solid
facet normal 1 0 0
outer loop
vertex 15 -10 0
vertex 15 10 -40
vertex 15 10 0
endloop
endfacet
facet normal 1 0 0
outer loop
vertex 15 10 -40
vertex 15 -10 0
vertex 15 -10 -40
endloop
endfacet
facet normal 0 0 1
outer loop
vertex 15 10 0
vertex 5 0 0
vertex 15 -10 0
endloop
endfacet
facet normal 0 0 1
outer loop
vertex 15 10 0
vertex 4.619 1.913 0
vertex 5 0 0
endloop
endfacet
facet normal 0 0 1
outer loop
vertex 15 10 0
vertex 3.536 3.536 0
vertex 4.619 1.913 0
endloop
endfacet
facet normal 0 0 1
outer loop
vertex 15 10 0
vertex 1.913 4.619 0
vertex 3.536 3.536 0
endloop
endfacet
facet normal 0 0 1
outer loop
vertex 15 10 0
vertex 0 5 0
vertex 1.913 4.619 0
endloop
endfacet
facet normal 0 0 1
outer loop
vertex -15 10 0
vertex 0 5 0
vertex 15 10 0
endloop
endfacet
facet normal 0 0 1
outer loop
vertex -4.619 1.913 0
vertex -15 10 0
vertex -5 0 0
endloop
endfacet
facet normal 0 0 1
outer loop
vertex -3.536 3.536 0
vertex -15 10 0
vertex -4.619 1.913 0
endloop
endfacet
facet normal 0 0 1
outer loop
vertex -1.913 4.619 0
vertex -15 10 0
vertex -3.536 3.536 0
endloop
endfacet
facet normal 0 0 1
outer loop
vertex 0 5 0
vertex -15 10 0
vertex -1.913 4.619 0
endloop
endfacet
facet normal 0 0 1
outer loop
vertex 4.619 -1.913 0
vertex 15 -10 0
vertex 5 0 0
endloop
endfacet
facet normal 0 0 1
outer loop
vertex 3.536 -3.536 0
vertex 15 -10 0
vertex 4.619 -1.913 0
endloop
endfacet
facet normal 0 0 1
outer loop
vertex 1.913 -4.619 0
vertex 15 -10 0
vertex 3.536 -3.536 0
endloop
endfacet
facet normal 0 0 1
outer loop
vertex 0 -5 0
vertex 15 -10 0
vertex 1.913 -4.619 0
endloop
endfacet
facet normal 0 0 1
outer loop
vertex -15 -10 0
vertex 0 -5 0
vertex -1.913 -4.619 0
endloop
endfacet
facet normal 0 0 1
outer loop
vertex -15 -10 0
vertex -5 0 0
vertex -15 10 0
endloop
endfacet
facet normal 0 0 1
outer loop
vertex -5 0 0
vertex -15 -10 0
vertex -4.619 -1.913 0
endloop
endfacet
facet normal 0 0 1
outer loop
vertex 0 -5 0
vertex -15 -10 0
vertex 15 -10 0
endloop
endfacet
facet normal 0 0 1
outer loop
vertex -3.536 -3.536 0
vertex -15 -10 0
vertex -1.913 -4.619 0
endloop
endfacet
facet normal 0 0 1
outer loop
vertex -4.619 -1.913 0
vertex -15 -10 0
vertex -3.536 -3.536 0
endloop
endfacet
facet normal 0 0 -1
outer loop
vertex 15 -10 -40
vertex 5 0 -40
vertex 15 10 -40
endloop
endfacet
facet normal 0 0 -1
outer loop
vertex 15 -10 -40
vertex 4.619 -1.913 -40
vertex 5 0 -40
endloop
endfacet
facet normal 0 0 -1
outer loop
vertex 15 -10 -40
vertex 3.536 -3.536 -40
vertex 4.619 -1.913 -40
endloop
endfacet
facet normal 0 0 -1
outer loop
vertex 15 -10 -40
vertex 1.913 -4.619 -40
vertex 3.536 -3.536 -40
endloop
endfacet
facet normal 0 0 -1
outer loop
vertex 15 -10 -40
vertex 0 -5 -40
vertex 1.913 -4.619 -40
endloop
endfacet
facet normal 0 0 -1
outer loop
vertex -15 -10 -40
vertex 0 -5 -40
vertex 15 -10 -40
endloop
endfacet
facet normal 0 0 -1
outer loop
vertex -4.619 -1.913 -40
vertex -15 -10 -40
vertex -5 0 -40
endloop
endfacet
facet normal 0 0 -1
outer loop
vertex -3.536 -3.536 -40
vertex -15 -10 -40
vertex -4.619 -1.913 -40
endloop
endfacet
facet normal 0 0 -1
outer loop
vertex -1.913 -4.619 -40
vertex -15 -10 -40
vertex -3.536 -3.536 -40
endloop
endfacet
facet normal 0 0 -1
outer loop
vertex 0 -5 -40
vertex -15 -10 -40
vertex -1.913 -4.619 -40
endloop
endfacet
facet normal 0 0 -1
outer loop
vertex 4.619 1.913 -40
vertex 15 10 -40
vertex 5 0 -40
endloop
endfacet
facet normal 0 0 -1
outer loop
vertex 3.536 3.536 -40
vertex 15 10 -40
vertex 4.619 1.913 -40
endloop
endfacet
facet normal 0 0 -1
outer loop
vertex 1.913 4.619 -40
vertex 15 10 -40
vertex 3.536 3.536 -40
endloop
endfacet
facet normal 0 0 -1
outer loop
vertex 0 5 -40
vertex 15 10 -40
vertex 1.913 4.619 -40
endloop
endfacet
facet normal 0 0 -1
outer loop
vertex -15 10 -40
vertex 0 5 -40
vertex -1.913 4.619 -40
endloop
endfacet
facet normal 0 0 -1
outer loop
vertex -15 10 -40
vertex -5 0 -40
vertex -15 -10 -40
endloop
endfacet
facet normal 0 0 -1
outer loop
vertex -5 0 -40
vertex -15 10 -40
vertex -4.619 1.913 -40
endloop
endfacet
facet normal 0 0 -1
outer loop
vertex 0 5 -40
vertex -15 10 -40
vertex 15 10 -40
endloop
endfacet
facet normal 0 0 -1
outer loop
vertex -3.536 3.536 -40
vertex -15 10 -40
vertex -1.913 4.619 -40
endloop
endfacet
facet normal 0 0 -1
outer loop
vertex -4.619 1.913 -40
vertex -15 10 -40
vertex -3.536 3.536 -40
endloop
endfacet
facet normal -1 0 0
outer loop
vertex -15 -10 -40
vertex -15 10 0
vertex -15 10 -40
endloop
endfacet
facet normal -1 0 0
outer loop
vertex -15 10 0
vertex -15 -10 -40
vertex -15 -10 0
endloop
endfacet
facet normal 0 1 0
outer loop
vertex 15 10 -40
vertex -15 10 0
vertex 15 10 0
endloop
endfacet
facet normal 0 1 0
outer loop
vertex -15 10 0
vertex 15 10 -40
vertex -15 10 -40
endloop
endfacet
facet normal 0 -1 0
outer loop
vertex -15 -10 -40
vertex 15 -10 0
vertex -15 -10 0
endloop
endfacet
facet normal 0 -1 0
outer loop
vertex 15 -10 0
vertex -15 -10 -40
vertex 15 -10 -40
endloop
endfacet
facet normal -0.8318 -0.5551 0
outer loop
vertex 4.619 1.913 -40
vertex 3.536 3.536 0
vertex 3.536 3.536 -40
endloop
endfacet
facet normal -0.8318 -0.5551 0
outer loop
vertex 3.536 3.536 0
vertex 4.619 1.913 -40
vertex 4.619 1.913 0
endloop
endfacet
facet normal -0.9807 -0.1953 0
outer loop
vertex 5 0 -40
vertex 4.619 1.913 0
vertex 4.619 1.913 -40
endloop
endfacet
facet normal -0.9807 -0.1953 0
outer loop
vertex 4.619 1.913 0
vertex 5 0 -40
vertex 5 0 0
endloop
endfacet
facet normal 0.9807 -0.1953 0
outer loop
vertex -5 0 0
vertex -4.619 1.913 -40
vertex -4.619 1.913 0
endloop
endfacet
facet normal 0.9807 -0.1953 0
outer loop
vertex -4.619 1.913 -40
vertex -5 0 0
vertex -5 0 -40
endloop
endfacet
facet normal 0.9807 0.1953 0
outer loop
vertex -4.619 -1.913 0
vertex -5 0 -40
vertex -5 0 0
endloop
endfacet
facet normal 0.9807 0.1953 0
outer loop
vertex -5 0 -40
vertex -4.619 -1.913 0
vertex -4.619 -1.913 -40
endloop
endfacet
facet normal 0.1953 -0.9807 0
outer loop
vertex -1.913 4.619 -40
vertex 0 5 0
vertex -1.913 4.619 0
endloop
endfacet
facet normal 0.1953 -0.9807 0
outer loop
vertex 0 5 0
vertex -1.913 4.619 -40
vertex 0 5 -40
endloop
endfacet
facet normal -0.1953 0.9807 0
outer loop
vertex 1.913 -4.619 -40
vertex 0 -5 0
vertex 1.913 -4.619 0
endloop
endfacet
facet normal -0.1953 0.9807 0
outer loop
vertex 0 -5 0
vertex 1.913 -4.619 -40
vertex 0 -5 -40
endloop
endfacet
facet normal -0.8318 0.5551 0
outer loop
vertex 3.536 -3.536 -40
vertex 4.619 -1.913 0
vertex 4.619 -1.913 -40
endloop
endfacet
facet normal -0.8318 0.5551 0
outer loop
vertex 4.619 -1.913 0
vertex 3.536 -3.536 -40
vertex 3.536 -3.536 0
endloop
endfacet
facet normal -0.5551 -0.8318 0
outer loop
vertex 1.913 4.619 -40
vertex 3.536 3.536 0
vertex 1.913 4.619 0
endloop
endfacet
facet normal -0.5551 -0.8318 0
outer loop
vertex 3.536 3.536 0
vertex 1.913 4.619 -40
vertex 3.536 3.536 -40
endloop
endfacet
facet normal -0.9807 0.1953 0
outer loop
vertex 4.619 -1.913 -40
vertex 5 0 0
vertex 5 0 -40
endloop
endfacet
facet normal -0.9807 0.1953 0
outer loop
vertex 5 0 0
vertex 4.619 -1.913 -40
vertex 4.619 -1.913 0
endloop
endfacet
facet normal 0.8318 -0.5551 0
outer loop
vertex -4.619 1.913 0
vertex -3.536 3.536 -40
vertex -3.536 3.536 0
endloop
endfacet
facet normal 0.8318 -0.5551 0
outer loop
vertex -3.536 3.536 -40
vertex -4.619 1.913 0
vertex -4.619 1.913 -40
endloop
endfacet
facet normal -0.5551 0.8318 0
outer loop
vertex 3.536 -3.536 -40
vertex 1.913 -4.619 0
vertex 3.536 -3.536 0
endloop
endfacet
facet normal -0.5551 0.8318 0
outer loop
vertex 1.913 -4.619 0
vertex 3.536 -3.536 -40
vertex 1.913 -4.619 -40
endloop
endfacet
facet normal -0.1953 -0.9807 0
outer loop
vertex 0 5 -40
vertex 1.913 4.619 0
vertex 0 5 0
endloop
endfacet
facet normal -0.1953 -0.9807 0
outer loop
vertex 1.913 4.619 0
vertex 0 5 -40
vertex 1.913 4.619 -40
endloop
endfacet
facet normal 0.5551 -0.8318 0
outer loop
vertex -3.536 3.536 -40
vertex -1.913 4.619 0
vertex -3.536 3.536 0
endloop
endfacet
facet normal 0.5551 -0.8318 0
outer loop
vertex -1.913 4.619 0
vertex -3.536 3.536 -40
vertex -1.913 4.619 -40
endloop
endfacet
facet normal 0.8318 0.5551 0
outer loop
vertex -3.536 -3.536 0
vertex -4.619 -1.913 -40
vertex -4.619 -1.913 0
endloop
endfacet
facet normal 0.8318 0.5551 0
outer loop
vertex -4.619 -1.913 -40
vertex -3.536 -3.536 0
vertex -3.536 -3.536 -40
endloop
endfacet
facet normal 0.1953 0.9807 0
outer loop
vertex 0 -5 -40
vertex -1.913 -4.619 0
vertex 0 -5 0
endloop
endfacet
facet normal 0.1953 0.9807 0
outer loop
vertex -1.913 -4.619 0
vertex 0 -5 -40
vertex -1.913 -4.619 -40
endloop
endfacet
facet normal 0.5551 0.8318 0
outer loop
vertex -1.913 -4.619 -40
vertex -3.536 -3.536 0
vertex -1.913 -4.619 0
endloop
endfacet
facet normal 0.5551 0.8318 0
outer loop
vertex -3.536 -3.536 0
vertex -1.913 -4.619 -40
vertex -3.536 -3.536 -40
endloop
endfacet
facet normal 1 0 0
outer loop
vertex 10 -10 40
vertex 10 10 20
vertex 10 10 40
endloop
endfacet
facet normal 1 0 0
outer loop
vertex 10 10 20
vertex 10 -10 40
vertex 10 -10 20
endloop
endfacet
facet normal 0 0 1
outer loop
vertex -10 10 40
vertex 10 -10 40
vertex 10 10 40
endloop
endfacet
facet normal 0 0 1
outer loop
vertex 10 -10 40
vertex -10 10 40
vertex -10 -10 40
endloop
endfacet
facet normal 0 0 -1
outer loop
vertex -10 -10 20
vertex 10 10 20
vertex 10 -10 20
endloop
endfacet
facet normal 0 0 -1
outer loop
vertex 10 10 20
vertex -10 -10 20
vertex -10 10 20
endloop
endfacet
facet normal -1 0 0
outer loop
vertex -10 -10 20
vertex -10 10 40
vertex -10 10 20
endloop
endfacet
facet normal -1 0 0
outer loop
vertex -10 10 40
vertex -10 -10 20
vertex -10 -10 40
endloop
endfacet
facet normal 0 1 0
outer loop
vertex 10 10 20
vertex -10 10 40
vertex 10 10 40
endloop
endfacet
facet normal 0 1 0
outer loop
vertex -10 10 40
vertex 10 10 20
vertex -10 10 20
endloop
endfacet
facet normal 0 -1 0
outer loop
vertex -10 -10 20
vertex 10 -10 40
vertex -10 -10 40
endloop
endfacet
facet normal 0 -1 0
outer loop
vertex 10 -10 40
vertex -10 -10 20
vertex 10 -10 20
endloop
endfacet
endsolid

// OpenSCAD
// Define dimensions
cube_size = 20; // Size of the solid cube
block_width = 30; // Width of the rectangular block
block_height = 40; // Height of the rectangular block
block_depth = 20; // Depth of the rectangular block
hole_diameter = 10; // Diameter of the holes
hole_spacing = 15; // Distance between the centers of the holes

// Solid cube
module solid_cube() {
    cube([cube_size, cube_size, cube_size], center = true);
}

// Rectangular block with two holes
module rectangular_block_with_two_holes() {
    difference() {
        cube([block_width, block_depth, block_height], center = true);
        // Create the two holes
        translate([-block_width / 2 + hole_spacing, 0, 0])
            cylinder(h = block_height + 1, r = hole_diameter / 2, center = true);
        translate([block_width / 2 - hole_spacing, 0, 0])
            cylinder(h = block_height + 1, r = hole_diameter / 2, center = true);
    }
}

// Assembly
module assembly() {
    // Layer 1: Solid cube
    translate([0, 0, block_height / 2 + cube_size / 2])
        solid_cube();
    // Layer 2: Rectangular block with two holes
    translate([0, 0, -block_height / 2])
        rectangular_block_with_two_holes();
}

// Render the assembly
assembly();
